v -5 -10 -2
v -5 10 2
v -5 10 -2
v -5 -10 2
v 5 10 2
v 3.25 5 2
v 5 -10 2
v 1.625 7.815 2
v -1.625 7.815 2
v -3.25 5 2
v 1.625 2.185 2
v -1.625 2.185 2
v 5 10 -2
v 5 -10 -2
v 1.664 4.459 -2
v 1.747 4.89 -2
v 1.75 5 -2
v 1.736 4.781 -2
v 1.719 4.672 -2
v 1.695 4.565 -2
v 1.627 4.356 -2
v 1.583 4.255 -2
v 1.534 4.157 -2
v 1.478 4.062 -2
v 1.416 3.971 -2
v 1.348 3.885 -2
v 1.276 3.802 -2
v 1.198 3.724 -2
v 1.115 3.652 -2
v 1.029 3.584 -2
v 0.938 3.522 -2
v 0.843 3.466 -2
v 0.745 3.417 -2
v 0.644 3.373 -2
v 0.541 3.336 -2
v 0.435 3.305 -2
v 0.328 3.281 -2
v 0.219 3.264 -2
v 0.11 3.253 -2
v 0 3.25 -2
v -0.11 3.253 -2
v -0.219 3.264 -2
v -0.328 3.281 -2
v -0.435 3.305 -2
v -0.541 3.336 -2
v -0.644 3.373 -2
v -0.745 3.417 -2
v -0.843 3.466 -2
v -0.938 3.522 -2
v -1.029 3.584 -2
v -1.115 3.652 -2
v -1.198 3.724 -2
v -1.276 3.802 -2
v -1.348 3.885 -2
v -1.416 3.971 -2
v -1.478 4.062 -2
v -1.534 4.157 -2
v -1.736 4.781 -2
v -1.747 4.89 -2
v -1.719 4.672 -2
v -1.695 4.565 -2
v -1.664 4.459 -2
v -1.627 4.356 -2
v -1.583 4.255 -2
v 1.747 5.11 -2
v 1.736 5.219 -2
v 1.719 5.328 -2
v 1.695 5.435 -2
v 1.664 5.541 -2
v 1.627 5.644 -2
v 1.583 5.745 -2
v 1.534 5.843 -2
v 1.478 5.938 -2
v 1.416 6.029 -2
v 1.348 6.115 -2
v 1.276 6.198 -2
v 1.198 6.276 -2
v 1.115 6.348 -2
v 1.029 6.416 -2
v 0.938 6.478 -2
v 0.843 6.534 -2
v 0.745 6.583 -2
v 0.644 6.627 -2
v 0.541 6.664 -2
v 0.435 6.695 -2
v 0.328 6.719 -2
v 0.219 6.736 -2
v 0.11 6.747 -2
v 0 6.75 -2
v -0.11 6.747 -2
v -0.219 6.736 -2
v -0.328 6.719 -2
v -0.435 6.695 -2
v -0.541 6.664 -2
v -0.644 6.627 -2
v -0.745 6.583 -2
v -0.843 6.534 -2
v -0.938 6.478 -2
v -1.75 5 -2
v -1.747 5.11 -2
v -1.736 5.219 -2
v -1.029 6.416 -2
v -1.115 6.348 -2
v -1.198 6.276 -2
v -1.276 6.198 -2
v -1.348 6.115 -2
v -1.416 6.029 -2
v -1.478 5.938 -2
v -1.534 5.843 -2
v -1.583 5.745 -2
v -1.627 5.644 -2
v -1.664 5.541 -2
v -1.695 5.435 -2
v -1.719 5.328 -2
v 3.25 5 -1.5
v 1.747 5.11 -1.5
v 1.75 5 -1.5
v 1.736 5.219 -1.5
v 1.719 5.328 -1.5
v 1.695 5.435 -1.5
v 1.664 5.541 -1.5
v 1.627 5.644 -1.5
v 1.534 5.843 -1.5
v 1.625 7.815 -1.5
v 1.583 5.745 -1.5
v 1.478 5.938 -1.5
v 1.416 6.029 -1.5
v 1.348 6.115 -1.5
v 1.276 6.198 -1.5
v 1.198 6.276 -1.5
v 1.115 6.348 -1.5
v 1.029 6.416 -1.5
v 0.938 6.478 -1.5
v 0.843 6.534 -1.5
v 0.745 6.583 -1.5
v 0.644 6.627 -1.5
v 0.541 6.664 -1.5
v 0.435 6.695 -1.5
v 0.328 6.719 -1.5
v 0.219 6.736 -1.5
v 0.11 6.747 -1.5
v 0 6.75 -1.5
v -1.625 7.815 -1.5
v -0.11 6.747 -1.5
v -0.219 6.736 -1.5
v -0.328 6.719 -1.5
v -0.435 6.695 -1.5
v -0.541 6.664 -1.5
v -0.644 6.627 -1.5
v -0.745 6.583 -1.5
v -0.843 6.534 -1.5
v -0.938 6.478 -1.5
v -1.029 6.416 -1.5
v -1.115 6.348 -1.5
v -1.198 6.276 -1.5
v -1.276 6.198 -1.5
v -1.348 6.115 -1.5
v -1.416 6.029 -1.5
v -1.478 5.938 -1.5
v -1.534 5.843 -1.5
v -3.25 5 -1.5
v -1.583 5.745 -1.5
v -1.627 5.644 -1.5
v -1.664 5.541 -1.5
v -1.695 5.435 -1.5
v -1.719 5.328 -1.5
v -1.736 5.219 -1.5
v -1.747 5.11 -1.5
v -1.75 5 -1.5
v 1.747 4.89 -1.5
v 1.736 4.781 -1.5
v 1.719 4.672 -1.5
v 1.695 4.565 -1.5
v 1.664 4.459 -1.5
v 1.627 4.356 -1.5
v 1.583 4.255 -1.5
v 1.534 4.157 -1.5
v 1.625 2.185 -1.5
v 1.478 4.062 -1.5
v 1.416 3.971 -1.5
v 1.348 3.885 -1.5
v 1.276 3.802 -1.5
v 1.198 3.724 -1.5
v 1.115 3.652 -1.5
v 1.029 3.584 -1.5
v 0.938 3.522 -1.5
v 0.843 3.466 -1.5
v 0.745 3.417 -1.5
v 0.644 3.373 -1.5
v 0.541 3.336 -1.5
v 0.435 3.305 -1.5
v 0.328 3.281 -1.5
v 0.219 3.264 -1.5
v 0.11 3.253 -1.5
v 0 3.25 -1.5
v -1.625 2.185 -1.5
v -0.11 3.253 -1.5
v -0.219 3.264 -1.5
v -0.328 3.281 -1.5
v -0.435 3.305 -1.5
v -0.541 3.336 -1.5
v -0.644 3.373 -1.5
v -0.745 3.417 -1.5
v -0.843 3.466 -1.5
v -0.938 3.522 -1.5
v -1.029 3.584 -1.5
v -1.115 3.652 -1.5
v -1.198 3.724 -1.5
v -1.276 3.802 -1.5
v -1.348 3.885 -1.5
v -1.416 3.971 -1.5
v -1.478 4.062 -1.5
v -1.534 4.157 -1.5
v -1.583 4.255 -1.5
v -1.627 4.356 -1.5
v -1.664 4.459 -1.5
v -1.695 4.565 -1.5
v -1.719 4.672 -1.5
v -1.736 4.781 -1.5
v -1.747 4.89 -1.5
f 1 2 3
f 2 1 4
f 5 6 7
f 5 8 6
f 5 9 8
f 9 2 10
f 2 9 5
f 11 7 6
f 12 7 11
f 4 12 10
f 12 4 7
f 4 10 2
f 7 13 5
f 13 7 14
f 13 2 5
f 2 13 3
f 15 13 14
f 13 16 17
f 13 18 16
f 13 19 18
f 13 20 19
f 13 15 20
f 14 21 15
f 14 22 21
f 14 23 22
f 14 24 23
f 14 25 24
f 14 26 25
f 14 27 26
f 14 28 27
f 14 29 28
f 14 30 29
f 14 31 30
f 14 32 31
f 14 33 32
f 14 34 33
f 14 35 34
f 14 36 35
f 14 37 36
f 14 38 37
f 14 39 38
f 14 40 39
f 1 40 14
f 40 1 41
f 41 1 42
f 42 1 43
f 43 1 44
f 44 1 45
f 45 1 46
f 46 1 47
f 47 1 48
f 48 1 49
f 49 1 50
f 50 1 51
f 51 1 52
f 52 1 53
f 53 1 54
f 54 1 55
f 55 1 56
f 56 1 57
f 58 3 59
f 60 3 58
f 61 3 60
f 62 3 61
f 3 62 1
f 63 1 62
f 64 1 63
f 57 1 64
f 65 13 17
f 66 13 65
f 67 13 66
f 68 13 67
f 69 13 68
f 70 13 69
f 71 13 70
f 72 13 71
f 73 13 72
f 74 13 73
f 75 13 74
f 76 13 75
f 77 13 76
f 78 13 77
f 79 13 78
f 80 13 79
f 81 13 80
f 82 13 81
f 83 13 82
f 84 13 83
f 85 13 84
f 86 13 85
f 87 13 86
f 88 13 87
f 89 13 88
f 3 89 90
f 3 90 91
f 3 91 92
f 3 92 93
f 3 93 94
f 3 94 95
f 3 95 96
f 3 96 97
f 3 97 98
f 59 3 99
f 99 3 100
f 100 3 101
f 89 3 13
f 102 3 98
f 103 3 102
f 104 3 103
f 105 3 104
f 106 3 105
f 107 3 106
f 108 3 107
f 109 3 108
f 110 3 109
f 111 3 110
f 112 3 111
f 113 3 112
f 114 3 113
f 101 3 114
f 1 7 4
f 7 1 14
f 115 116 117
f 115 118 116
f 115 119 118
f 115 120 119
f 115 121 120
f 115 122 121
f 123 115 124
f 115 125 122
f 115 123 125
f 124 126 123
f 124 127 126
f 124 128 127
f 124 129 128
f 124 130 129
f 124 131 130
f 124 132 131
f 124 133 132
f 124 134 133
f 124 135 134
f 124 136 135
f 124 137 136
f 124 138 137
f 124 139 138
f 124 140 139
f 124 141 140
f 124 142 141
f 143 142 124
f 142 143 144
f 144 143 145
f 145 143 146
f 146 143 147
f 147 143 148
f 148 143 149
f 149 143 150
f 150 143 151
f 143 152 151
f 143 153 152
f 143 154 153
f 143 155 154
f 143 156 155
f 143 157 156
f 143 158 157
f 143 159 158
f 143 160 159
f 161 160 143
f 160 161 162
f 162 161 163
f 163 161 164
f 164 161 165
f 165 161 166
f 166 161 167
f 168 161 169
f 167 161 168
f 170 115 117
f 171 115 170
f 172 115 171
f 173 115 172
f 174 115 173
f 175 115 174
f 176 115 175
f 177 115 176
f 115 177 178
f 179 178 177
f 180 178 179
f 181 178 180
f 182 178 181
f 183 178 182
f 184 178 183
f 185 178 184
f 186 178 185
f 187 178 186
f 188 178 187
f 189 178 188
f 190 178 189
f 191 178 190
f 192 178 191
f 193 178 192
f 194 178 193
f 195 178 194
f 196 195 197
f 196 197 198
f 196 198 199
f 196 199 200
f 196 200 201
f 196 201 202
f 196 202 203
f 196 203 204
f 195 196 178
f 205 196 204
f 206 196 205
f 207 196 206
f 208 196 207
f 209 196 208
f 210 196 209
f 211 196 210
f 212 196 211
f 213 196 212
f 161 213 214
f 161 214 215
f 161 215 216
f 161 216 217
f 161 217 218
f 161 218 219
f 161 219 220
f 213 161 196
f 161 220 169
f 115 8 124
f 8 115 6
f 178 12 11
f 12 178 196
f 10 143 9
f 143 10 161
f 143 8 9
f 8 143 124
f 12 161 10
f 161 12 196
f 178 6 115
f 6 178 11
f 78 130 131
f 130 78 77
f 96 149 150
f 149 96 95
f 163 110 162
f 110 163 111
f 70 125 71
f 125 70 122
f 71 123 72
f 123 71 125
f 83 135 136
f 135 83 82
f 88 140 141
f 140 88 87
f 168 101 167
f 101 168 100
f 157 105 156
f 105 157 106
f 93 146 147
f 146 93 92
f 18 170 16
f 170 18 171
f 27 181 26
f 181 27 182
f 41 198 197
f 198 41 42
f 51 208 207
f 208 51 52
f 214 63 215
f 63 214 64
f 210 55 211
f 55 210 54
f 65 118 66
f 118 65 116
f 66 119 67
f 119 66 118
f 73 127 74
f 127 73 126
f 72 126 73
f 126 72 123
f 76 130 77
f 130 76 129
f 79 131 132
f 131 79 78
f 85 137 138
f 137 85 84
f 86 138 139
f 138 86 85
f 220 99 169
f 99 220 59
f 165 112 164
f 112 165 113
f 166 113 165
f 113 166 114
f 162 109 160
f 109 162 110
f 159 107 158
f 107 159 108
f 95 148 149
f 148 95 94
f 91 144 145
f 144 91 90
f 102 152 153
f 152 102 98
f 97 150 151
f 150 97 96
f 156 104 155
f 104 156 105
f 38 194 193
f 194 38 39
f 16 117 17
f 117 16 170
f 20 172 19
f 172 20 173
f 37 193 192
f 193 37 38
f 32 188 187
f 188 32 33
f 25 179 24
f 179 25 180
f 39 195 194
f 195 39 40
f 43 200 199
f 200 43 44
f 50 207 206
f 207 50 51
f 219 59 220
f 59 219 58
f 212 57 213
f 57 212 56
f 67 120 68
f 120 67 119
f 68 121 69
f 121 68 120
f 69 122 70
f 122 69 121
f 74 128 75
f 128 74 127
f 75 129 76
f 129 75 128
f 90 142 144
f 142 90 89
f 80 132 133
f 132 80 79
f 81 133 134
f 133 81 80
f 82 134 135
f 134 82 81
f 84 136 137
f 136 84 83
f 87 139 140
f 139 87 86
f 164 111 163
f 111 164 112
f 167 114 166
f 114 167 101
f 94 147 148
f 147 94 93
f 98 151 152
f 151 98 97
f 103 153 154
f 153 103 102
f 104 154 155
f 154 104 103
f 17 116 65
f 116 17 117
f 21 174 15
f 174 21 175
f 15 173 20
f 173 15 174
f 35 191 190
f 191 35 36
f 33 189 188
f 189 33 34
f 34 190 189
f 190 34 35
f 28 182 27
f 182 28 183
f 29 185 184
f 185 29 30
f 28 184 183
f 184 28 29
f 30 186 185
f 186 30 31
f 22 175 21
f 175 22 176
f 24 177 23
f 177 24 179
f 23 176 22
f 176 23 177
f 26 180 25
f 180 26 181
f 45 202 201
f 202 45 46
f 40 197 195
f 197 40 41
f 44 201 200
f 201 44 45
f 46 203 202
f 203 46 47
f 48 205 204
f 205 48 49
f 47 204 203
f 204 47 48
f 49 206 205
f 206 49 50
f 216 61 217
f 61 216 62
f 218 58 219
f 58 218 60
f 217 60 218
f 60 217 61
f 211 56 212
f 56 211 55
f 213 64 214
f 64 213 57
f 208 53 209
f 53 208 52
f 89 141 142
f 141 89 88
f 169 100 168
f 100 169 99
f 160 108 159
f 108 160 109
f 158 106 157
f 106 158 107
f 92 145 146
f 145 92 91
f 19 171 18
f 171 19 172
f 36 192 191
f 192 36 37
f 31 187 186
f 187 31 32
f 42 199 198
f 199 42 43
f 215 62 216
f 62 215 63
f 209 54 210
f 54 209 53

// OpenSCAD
difference() {
  cube([10,20,4], true);
  translate([0,5,1]) 
    #cylinder(h=5,d=6.5 , center=true, $fn=6);
  translate([0,5,0]) 
    #cylinder(h=5,d=3.5 , center=true, $fn=100);
  
}
